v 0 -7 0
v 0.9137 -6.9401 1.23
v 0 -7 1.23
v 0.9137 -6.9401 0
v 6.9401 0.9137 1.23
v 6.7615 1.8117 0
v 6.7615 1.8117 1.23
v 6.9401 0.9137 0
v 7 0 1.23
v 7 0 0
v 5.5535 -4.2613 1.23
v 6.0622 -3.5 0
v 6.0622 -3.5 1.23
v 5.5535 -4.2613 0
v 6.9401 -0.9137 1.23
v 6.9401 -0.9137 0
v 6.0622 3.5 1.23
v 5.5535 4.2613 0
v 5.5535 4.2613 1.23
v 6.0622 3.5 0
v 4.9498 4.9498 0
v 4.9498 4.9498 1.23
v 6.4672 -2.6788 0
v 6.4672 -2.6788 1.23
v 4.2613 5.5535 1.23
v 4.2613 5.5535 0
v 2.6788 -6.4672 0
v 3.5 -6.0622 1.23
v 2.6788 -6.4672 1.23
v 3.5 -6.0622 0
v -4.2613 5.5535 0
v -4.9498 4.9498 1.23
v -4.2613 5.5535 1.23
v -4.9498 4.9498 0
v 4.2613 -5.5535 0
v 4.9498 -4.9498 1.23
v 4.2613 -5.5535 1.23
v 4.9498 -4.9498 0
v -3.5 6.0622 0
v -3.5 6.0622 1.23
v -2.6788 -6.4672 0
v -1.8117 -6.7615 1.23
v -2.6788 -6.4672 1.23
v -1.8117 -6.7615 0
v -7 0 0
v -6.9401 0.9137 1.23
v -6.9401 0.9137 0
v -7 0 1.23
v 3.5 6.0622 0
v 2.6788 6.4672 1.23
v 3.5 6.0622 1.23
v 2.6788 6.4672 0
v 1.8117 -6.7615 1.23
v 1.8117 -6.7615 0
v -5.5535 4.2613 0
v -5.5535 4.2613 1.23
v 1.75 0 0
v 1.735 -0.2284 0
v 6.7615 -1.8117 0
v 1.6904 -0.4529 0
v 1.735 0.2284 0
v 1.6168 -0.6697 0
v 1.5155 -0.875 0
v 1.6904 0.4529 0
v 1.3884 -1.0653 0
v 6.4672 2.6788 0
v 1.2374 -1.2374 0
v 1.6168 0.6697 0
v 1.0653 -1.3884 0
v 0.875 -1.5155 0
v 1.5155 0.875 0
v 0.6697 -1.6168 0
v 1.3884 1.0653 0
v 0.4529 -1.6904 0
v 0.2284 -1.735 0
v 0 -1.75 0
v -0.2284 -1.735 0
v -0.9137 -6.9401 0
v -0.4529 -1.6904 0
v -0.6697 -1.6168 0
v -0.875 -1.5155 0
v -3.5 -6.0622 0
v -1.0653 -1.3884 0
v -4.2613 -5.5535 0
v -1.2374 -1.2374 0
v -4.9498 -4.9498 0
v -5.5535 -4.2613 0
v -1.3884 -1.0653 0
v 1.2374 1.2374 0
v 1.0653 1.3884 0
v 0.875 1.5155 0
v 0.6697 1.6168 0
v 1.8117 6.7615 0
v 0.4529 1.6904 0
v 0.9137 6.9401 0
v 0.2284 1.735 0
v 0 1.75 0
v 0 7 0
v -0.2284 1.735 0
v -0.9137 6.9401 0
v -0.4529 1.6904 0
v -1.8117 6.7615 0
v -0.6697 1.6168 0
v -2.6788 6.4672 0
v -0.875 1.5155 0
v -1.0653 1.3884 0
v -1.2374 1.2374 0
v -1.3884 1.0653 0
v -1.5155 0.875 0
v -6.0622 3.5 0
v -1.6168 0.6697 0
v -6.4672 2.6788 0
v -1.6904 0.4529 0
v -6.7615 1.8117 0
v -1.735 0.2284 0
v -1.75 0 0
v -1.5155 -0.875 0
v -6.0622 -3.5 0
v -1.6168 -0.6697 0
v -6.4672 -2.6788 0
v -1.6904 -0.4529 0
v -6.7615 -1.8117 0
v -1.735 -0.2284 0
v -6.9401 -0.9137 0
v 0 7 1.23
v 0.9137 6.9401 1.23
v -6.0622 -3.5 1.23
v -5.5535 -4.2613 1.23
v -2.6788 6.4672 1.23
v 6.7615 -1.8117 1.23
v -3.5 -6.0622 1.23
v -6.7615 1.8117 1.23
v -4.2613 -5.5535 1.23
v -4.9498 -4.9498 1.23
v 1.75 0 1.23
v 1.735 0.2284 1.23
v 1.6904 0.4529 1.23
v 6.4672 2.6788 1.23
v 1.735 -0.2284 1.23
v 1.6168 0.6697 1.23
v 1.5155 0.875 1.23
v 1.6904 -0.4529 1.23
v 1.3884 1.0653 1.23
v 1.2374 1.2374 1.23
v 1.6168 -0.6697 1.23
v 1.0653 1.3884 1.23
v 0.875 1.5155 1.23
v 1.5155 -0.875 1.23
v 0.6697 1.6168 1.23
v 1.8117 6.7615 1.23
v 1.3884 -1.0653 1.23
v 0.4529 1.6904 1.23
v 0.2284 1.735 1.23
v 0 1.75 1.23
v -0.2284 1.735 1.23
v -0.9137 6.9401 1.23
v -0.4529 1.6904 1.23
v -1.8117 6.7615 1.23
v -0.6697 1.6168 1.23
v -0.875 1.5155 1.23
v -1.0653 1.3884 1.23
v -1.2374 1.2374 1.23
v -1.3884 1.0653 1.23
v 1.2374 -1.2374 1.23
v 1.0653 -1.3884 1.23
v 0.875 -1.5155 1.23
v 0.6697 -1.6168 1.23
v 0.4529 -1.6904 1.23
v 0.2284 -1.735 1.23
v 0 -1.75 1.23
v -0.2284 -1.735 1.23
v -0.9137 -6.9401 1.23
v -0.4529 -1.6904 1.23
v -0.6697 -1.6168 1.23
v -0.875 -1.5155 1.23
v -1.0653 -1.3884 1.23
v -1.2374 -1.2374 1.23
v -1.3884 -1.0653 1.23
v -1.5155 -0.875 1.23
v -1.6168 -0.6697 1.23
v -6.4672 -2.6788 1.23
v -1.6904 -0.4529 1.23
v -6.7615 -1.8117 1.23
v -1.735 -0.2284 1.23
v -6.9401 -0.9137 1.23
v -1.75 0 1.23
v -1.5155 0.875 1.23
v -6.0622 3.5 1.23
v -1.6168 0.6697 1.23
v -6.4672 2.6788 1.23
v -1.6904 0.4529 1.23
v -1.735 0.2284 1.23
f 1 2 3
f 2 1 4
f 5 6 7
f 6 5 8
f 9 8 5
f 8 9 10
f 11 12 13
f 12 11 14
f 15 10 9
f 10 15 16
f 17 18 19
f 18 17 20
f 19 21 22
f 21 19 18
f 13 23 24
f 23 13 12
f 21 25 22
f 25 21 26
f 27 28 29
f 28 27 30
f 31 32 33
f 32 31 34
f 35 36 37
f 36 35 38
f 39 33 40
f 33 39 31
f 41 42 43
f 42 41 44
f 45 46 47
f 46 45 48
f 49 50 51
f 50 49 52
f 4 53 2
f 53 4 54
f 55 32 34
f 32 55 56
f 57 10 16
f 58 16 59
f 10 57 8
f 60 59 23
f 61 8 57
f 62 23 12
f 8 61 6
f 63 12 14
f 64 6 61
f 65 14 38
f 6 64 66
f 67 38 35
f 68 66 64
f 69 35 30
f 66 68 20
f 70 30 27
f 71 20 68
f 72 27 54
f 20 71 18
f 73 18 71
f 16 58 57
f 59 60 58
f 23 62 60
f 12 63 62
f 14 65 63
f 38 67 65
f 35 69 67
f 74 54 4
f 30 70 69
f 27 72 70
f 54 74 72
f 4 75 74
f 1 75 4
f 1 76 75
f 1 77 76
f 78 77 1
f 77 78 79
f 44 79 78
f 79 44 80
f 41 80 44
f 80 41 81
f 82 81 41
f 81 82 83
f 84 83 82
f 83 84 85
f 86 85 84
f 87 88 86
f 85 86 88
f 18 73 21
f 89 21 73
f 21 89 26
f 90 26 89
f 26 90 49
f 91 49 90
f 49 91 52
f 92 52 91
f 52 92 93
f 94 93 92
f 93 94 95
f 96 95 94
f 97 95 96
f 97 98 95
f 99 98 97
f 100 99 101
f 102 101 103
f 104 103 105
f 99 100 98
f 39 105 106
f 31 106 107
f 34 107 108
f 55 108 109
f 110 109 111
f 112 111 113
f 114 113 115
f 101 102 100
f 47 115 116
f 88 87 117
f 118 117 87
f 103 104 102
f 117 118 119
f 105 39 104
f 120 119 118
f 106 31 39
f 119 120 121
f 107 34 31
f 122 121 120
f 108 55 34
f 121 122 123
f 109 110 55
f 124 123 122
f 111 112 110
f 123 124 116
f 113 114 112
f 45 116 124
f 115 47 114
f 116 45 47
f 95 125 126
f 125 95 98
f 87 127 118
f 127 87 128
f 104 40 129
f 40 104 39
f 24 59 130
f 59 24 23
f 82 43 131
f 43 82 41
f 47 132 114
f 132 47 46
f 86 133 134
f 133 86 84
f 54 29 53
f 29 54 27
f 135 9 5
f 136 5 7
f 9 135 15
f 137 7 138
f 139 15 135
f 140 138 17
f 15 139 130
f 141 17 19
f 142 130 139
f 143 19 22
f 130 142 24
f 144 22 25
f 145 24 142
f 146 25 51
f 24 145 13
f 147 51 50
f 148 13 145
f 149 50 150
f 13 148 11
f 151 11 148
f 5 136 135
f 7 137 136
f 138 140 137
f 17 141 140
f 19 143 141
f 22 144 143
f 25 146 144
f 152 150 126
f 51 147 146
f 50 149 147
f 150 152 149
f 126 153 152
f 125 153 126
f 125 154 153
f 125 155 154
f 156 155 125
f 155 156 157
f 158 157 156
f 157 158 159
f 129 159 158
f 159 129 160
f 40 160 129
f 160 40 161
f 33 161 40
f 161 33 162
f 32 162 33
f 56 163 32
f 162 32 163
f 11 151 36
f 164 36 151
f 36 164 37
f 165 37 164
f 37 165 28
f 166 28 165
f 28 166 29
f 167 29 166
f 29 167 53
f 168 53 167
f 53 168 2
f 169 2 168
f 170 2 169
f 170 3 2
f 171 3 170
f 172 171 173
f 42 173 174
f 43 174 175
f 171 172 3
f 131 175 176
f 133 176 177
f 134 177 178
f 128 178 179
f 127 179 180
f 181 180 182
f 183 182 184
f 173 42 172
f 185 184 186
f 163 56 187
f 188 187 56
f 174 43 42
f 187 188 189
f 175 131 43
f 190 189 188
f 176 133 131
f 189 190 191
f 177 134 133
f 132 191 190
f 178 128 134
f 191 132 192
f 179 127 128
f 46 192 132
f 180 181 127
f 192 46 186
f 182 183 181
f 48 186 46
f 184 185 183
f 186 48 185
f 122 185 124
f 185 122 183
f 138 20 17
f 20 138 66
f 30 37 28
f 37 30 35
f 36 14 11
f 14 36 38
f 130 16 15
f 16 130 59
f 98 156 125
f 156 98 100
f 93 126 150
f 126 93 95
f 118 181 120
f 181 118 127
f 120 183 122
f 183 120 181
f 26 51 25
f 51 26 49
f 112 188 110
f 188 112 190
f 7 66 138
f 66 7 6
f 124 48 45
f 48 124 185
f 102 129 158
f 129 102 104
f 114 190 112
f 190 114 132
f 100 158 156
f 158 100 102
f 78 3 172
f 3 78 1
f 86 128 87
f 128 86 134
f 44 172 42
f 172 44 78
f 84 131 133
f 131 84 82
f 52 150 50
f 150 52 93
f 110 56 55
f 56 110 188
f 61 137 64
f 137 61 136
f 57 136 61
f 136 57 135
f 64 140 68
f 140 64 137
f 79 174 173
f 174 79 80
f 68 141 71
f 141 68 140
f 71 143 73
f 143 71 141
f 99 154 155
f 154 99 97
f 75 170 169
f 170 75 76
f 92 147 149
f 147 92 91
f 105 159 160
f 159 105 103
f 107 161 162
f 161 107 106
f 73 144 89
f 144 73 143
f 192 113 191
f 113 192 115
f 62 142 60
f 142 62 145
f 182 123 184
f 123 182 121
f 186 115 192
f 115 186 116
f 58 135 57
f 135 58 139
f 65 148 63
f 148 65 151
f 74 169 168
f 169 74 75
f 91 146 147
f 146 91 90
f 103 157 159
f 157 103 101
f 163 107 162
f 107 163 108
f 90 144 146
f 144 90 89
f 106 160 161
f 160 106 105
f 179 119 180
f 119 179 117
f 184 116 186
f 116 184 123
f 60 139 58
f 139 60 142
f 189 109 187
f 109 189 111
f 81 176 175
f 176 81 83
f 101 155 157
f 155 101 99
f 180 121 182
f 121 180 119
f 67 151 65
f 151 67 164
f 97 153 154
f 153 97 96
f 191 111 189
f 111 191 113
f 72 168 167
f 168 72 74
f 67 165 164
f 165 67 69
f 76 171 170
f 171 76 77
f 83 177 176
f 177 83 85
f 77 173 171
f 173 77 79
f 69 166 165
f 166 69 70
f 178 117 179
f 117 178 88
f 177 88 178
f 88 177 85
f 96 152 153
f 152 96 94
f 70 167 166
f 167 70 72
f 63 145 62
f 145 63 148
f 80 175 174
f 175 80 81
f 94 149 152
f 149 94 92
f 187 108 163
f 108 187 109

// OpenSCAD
// file: parameters.scad
// =============================================================================
// Gen-AC Stacked dual-gap / mid-stator Halbach intensifier — WOUND-AWARE
// TWO wound pancake stators | ONE mid dual-face Halbach rotor | outer endbells
// Beats Gen-Z: thinner m2m, larger copper window, 125 t / coil
// =============================================================================

wire_awg            = 26;
wire_od             = 0.45;
turns               = 125;      // 9 coils/stator ×2 = 18 ×125 ×~0.115 ≈ 259 m
fill                = 0.70;
layers_per_face     = 2;
wind_build_axial    = layers_per_face * wire_od * fill;   // 0.63
wind_build_radial   = 2.8 * wire_od * fill;               // 0.882

coil_id_r           = 21.0;     // larger than Gen-Z 22–58
coil_od_r           = 60.0;
span_deg            = 34.0;     // 9 stations × 40°
former_web          = 1.7;
flange_t            = 0.65;
wall                = 1.2;
slot_w              = 2.4;
mount_hole          = 3.5;
tab_len             = 7.0;

former_bare_h       = former_web + 2 * flange_t;            // 3.0
coil_envelope_h     = former_bare_h + 2 * wind_build_axial; // 4.26

run_clear           = 0.60;
gap_spacer_h        = run_clear + wind_build_axial;         // 1.23
m2m                 = coil_envelope_h + 2 * run_clear;      // 5.46 per gap (beats Gen-Z 5.86)

coil_stations       = 9;        // per stator; ×2 = 18 total
bay_r_in            = coil_id_r - 2.0 - wind_build_radial;
bay_r_out           = coil_od_r + 2.0 + wind_build_radial;
bay_span            = span_deg + 4.0;
bay_offset          = 2.0;
bay_depth           = former_bare_h + wind_build_axial;
stator_back_web     = 2.0;
stator_thick        = bay_depth + stator_back_web;
stator_od           = 156.0;
shaft_clear_stator  = 40.0;
coil_mount_r        = 30.0;

large_pocket_d      = 20.3;
small_pocket_d      = 5.3;
pocket_h            = 5.2;
large_n             = 8;
R_large             = 52.0;
R_small_inner       = 40.0;
R_small_mid         = 52.0;
R_small_outer       = 64.0;
carrier_od          = 152.0;
mid_carrier_thick   = 12.0;
hub_h               = 10.0;
hub_od              = 30.0;
rotor_b_offset_deg  = 22.5;

shaft_bore          = 8.35;
bearing_d           = 21.85;
bearing_h           = 7.2;
m3_clear            = 3.5;
bolt_r_inner        = 36.0;
bolt_n_inner        = 6;
flange_bolt_r       = 72.0;
flange_bolt_n       = 6;
brace_r             = 68.0;
brace_d             = 4.3;
brace_n             = 4;

spacer_pad_od       = 14.0;
spacer_pad_id       = m3_clear;
endbell_od          = 156.0;
endbell_thick       = 8.0;
endbell_shaft_clear = 10.0;

$fn = 64;
// main file
// Gen-AC gap spacer — h = run_clear + wind_build_axial; print ×18
include <parameters.scad>;
$fn = 48;
difference() {
    cylinder(d=spacer_pad_od, h=gap_spacer_h);
    translate([0, 0, -0.1]) cylinder(d=spacer_pad_id, h=gap_spacer_h + 0.2);
}
